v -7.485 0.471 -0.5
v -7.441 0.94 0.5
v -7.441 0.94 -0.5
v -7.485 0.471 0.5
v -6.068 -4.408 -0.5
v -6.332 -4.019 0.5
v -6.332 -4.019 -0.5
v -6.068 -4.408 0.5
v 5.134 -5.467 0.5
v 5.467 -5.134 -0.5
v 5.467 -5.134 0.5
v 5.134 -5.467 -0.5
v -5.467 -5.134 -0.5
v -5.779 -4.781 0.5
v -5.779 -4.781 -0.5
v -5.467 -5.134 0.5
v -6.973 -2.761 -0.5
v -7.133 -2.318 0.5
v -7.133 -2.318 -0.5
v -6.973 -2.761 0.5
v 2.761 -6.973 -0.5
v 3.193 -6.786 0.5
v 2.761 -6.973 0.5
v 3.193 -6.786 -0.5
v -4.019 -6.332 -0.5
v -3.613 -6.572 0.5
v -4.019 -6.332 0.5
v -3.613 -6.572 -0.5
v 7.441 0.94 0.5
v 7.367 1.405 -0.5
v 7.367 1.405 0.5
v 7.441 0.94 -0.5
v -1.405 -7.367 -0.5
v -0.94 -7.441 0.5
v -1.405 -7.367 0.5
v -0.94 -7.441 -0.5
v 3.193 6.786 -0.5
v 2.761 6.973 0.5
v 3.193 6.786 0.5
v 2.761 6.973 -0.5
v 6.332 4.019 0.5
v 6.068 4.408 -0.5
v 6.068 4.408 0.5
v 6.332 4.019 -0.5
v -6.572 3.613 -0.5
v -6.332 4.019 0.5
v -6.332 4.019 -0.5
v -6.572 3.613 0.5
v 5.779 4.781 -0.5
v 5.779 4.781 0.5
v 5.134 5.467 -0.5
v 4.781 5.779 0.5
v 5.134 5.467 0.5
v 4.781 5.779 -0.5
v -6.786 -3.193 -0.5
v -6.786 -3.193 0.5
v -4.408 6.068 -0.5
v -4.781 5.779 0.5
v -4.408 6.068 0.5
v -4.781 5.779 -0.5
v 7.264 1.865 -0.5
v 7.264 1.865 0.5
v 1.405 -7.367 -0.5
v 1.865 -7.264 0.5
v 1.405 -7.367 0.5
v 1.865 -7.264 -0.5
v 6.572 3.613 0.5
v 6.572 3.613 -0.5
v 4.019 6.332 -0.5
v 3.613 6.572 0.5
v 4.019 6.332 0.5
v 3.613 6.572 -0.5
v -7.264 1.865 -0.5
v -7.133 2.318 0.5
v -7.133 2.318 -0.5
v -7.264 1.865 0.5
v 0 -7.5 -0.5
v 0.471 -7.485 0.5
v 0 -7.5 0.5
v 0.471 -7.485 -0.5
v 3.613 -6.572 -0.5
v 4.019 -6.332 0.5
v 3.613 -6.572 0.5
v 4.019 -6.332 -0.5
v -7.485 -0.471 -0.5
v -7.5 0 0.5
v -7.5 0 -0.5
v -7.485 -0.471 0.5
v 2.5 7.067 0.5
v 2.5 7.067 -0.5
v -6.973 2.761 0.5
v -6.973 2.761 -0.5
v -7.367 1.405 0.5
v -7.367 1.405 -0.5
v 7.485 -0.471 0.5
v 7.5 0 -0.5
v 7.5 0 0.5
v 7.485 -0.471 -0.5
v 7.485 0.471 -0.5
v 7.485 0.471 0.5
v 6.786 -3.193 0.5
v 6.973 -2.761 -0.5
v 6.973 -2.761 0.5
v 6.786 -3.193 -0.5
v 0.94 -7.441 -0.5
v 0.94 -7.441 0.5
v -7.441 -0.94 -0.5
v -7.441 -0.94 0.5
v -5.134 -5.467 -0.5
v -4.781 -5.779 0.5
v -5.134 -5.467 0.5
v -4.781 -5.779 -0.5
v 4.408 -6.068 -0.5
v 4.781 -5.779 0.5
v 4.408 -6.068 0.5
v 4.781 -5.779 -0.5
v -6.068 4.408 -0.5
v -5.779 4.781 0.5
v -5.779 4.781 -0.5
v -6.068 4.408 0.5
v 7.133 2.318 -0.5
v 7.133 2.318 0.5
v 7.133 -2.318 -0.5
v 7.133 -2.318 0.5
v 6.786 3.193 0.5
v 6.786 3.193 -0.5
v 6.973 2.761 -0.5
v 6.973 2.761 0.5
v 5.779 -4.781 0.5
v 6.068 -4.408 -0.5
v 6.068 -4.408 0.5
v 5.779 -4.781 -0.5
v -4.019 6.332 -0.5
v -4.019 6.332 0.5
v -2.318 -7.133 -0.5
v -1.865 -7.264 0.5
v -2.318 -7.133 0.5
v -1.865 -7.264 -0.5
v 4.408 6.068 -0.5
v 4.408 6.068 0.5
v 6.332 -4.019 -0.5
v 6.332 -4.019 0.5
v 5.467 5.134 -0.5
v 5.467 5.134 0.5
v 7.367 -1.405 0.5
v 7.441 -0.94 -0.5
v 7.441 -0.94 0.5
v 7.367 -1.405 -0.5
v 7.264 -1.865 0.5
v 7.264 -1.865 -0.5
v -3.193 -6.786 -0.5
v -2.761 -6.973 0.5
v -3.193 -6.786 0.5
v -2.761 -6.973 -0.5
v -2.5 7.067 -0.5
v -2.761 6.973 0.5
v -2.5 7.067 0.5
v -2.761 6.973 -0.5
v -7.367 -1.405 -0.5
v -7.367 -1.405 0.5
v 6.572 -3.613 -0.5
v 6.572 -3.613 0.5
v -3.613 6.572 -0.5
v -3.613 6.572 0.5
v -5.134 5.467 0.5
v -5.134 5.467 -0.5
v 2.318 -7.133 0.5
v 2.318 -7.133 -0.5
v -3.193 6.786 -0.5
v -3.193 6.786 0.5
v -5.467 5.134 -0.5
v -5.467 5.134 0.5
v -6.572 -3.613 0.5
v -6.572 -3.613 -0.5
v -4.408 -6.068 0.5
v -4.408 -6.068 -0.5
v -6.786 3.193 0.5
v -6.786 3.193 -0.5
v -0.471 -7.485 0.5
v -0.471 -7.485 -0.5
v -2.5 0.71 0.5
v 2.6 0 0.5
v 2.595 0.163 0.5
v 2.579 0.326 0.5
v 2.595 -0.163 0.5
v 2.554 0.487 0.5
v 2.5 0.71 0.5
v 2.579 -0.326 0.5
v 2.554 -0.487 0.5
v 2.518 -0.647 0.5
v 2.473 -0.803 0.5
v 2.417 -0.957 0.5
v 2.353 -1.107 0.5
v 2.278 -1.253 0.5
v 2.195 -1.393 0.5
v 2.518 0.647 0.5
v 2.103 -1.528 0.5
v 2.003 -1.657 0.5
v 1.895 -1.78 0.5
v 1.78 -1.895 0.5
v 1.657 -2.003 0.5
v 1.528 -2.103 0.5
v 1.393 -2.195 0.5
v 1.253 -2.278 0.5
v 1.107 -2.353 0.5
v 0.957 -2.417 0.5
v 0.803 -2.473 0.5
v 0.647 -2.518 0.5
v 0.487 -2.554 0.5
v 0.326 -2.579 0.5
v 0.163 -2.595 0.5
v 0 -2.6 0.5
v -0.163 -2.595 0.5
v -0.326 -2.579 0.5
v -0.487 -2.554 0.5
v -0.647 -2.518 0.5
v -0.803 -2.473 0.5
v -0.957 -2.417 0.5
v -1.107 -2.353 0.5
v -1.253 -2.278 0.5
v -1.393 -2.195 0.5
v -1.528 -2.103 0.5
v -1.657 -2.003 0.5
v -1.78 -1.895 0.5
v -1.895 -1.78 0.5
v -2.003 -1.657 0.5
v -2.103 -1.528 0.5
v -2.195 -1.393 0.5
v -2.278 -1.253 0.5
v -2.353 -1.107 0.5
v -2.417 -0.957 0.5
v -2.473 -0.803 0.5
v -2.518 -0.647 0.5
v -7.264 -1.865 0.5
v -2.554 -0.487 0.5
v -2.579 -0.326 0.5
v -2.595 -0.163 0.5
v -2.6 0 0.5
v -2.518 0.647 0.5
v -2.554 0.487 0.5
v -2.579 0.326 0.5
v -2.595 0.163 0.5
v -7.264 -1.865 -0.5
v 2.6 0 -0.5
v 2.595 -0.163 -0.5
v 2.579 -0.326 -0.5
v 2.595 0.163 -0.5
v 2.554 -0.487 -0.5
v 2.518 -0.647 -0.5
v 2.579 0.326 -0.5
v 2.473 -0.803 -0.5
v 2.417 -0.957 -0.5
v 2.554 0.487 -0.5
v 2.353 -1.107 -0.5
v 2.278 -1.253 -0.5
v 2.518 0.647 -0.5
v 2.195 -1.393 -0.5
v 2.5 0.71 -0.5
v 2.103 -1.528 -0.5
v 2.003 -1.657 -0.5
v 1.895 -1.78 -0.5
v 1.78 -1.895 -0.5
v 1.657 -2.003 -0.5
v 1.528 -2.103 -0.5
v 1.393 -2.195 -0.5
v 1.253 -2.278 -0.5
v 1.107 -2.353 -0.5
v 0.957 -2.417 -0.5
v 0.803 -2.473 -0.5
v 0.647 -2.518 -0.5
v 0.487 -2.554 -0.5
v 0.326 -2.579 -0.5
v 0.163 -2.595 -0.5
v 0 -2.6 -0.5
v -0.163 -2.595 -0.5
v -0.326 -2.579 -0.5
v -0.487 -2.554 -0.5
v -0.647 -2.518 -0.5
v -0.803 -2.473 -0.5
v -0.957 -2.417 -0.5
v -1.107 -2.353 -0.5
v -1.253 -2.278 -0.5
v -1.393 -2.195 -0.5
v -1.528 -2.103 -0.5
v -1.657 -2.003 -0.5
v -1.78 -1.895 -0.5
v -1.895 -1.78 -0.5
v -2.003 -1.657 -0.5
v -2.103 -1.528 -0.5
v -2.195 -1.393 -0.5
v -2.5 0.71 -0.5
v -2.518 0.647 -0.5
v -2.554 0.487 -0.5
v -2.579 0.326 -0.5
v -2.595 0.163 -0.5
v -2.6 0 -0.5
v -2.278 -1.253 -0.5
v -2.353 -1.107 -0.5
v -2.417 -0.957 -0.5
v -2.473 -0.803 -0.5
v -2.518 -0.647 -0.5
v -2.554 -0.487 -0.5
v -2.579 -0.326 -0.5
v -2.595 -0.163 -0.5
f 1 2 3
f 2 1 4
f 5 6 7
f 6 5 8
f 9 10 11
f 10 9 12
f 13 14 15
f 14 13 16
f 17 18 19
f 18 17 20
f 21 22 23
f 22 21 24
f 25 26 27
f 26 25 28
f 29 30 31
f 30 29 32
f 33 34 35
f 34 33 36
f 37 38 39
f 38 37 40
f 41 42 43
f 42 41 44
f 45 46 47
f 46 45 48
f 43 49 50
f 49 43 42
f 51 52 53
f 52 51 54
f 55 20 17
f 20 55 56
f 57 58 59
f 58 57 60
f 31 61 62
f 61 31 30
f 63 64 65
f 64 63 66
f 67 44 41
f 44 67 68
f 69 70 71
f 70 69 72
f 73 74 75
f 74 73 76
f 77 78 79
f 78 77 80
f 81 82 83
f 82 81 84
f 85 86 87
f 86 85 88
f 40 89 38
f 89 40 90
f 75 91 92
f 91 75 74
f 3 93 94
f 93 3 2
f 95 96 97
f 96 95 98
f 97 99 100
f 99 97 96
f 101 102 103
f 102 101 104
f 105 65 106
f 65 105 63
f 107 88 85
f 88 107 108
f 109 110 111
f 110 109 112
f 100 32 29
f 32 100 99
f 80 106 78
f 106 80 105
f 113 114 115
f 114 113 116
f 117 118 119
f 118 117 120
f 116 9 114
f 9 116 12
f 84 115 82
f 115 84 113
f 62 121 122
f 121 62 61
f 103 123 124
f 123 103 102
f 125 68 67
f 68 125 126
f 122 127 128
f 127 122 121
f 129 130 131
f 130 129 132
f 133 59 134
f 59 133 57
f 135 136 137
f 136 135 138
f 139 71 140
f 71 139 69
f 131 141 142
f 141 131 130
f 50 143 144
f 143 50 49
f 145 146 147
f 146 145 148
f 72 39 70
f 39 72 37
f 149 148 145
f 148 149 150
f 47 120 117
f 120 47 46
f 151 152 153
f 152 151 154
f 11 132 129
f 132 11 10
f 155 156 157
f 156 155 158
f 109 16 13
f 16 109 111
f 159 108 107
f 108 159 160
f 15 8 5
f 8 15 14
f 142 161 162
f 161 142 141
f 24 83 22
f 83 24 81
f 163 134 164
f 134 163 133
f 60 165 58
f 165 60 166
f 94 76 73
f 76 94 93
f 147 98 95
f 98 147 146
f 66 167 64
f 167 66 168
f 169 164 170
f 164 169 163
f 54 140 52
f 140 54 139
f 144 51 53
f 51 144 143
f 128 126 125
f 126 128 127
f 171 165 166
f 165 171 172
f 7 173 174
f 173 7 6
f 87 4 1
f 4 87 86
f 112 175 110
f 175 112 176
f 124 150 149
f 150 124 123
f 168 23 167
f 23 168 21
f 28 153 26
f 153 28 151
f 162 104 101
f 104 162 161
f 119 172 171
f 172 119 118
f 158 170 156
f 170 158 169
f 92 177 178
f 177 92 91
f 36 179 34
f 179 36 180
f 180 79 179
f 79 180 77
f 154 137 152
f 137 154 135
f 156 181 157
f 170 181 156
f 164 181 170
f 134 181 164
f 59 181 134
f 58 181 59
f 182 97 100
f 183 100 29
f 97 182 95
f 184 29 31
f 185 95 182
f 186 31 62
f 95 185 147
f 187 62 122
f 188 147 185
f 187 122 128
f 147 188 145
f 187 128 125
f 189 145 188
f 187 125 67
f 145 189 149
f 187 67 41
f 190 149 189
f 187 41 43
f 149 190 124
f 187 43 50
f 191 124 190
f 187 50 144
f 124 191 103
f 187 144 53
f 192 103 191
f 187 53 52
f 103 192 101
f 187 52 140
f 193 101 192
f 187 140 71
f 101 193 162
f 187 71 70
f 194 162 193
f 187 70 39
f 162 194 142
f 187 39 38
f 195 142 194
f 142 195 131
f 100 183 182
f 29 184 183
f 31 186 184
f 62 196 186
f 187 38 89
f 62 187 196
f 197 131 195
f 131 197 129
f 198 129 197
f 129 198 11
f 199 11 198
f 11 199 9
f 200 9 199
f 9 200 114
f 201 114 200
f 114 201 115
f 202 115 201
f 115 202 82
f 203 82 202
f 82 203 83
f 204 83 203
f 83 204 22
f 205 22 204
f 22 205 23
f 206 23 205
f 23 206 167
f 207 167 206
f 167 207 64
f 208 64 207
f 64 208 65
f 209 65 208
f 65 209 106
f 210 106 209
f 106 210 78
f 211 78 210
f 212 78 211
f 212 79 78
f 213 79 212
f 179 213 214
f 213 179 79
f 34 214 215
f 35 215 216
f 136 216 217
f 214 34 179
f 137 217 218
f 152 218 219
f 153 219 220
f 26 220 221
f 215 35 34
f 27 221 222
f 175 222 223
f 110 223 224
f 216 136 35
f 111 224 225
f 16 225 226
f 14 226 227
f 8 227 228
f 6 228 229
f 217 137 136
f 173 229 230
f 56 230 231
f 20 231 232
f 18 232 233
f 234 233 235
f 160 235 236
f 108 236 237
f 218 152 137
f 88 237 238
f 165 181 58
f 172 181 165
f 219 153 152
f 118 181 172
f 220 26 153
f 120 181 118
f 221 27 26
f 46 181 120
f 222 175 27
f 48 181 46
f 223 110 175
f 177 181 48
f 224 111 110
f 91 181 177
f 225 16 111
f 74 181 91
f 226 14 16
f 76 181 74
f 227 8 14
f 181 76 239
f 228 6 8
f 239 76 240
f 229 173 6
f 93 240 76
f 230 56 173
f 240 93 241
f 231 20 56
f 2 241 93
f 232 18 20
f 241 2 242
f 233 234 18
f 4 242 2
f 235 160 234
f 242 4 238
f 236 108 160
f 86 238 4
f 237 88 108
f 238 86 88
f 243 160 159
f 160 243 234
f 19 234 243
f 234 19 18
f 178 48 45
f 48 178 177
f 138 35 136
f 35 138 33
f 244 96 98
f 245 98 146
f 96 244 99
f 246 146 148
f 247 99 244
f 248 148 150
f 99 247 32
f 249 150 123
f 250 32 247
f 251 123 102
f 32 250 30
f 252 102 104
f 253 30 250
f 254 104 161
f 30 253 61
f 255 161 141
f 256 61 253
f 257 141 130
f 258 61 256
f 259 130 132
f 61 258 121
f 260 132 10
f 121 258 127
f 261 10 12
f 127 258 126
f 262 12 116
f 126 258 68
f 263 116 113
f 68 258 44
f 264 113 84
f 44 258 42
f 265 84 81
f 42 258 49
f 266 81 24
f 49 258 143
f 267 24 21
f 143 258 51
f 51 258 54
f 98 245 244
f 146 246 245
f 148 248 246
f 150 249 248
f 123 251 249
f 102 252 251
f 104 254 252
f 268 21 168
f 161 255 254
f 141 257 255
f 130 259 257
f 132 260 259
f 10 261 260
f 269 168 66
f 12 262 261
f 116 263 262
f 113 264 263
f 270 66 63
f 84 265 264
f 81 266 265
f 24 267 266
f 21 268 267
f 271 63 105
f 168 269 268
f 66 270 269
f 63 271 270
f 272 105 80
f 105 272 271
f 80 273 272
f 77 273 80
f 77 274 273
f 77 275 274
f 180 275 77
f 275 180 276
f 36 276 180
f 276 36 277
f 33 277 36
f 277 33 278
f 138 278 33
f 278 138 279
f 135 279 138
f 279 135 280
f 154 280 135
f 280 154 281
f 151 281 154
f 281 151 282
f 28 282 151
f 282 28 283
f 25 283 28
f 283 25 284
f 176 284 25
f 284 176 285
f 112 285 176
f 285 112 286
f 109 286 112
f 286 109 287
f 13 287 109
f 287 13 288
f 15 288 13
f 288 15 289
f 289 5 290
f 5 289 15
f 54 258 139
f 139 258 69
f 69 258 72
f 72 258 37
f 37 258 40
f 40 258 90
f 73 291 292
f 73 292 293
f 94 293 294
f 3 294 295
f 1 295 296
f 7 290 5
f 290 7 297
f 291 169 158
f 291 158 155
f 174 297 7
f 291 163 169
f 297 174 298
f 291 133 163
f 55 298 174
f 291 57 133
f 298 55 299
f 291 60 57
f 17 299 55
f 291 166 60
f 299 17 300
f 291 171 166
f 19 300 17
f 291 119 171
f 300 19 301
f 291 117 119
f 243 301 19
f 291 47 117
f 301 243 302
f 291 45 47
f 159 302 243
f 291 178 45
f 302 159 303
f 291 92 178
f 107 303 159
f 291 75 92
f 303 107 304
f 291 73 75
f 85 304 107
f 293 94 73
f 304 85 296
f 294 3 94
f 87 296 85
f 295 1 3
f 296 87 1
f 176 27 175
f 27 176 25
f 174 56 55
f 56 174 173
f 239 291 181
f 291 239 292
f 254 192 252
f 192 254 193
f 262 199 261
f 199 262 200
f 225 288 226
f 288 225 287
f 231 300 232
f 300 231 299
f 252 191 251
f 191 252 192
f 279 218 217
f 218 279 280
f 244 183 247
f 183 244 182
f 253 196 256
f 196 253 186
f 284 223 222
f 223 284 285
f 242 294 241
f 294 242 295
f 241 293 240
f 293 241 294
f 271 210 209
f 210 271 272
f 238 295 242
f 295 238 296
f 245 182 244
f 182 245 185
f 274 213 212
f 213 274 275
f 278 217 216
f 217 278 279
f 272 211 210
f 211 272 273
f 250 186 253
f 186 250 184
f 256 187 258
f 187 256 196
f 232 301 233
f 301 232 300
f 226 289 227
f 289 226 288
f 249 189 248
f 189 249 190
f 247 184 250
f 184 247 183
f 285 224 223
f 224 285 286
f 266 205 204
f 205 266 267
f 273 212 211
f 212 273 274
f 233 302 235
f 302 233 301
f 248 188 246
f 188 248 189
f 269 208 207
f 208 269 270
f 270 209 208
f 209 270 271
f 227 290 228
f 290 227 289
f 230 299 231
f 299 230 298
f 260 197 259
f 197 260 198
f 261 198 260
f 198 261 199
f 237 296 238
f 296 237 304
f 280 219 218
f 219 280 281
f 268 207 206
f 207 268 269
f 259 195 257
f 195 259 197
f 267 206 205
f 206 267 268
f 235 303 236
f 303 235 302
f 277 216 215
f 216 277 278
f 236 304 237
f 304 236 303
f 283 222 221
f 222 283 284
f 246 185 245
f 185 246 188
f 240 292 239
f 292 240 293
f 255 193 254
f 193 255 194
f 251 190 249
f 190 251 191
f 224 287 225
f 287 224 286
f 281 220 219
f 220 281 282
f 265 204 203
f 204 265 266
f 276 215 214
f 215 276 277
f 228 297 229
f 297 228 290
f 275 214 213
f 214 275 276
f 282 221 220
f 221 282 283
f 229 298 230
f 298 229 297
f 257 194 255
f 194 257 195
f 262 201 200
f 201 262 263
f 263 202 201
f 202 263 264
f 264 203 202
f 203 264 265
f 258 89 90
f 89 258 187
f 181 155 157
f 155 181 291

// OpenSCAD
$fn=100;

holder_thickness = 1;
holder_diameter = 5.2;

difference(){
cylinder(h=holder_thickness,d=15 , center=true);
translate([0,0,-holder_thickness])cylinder(h=4,d=holder_diameter,center=true);
translate([0,5,-holder_thickness])cube([5,10,5], center=true);    
}
